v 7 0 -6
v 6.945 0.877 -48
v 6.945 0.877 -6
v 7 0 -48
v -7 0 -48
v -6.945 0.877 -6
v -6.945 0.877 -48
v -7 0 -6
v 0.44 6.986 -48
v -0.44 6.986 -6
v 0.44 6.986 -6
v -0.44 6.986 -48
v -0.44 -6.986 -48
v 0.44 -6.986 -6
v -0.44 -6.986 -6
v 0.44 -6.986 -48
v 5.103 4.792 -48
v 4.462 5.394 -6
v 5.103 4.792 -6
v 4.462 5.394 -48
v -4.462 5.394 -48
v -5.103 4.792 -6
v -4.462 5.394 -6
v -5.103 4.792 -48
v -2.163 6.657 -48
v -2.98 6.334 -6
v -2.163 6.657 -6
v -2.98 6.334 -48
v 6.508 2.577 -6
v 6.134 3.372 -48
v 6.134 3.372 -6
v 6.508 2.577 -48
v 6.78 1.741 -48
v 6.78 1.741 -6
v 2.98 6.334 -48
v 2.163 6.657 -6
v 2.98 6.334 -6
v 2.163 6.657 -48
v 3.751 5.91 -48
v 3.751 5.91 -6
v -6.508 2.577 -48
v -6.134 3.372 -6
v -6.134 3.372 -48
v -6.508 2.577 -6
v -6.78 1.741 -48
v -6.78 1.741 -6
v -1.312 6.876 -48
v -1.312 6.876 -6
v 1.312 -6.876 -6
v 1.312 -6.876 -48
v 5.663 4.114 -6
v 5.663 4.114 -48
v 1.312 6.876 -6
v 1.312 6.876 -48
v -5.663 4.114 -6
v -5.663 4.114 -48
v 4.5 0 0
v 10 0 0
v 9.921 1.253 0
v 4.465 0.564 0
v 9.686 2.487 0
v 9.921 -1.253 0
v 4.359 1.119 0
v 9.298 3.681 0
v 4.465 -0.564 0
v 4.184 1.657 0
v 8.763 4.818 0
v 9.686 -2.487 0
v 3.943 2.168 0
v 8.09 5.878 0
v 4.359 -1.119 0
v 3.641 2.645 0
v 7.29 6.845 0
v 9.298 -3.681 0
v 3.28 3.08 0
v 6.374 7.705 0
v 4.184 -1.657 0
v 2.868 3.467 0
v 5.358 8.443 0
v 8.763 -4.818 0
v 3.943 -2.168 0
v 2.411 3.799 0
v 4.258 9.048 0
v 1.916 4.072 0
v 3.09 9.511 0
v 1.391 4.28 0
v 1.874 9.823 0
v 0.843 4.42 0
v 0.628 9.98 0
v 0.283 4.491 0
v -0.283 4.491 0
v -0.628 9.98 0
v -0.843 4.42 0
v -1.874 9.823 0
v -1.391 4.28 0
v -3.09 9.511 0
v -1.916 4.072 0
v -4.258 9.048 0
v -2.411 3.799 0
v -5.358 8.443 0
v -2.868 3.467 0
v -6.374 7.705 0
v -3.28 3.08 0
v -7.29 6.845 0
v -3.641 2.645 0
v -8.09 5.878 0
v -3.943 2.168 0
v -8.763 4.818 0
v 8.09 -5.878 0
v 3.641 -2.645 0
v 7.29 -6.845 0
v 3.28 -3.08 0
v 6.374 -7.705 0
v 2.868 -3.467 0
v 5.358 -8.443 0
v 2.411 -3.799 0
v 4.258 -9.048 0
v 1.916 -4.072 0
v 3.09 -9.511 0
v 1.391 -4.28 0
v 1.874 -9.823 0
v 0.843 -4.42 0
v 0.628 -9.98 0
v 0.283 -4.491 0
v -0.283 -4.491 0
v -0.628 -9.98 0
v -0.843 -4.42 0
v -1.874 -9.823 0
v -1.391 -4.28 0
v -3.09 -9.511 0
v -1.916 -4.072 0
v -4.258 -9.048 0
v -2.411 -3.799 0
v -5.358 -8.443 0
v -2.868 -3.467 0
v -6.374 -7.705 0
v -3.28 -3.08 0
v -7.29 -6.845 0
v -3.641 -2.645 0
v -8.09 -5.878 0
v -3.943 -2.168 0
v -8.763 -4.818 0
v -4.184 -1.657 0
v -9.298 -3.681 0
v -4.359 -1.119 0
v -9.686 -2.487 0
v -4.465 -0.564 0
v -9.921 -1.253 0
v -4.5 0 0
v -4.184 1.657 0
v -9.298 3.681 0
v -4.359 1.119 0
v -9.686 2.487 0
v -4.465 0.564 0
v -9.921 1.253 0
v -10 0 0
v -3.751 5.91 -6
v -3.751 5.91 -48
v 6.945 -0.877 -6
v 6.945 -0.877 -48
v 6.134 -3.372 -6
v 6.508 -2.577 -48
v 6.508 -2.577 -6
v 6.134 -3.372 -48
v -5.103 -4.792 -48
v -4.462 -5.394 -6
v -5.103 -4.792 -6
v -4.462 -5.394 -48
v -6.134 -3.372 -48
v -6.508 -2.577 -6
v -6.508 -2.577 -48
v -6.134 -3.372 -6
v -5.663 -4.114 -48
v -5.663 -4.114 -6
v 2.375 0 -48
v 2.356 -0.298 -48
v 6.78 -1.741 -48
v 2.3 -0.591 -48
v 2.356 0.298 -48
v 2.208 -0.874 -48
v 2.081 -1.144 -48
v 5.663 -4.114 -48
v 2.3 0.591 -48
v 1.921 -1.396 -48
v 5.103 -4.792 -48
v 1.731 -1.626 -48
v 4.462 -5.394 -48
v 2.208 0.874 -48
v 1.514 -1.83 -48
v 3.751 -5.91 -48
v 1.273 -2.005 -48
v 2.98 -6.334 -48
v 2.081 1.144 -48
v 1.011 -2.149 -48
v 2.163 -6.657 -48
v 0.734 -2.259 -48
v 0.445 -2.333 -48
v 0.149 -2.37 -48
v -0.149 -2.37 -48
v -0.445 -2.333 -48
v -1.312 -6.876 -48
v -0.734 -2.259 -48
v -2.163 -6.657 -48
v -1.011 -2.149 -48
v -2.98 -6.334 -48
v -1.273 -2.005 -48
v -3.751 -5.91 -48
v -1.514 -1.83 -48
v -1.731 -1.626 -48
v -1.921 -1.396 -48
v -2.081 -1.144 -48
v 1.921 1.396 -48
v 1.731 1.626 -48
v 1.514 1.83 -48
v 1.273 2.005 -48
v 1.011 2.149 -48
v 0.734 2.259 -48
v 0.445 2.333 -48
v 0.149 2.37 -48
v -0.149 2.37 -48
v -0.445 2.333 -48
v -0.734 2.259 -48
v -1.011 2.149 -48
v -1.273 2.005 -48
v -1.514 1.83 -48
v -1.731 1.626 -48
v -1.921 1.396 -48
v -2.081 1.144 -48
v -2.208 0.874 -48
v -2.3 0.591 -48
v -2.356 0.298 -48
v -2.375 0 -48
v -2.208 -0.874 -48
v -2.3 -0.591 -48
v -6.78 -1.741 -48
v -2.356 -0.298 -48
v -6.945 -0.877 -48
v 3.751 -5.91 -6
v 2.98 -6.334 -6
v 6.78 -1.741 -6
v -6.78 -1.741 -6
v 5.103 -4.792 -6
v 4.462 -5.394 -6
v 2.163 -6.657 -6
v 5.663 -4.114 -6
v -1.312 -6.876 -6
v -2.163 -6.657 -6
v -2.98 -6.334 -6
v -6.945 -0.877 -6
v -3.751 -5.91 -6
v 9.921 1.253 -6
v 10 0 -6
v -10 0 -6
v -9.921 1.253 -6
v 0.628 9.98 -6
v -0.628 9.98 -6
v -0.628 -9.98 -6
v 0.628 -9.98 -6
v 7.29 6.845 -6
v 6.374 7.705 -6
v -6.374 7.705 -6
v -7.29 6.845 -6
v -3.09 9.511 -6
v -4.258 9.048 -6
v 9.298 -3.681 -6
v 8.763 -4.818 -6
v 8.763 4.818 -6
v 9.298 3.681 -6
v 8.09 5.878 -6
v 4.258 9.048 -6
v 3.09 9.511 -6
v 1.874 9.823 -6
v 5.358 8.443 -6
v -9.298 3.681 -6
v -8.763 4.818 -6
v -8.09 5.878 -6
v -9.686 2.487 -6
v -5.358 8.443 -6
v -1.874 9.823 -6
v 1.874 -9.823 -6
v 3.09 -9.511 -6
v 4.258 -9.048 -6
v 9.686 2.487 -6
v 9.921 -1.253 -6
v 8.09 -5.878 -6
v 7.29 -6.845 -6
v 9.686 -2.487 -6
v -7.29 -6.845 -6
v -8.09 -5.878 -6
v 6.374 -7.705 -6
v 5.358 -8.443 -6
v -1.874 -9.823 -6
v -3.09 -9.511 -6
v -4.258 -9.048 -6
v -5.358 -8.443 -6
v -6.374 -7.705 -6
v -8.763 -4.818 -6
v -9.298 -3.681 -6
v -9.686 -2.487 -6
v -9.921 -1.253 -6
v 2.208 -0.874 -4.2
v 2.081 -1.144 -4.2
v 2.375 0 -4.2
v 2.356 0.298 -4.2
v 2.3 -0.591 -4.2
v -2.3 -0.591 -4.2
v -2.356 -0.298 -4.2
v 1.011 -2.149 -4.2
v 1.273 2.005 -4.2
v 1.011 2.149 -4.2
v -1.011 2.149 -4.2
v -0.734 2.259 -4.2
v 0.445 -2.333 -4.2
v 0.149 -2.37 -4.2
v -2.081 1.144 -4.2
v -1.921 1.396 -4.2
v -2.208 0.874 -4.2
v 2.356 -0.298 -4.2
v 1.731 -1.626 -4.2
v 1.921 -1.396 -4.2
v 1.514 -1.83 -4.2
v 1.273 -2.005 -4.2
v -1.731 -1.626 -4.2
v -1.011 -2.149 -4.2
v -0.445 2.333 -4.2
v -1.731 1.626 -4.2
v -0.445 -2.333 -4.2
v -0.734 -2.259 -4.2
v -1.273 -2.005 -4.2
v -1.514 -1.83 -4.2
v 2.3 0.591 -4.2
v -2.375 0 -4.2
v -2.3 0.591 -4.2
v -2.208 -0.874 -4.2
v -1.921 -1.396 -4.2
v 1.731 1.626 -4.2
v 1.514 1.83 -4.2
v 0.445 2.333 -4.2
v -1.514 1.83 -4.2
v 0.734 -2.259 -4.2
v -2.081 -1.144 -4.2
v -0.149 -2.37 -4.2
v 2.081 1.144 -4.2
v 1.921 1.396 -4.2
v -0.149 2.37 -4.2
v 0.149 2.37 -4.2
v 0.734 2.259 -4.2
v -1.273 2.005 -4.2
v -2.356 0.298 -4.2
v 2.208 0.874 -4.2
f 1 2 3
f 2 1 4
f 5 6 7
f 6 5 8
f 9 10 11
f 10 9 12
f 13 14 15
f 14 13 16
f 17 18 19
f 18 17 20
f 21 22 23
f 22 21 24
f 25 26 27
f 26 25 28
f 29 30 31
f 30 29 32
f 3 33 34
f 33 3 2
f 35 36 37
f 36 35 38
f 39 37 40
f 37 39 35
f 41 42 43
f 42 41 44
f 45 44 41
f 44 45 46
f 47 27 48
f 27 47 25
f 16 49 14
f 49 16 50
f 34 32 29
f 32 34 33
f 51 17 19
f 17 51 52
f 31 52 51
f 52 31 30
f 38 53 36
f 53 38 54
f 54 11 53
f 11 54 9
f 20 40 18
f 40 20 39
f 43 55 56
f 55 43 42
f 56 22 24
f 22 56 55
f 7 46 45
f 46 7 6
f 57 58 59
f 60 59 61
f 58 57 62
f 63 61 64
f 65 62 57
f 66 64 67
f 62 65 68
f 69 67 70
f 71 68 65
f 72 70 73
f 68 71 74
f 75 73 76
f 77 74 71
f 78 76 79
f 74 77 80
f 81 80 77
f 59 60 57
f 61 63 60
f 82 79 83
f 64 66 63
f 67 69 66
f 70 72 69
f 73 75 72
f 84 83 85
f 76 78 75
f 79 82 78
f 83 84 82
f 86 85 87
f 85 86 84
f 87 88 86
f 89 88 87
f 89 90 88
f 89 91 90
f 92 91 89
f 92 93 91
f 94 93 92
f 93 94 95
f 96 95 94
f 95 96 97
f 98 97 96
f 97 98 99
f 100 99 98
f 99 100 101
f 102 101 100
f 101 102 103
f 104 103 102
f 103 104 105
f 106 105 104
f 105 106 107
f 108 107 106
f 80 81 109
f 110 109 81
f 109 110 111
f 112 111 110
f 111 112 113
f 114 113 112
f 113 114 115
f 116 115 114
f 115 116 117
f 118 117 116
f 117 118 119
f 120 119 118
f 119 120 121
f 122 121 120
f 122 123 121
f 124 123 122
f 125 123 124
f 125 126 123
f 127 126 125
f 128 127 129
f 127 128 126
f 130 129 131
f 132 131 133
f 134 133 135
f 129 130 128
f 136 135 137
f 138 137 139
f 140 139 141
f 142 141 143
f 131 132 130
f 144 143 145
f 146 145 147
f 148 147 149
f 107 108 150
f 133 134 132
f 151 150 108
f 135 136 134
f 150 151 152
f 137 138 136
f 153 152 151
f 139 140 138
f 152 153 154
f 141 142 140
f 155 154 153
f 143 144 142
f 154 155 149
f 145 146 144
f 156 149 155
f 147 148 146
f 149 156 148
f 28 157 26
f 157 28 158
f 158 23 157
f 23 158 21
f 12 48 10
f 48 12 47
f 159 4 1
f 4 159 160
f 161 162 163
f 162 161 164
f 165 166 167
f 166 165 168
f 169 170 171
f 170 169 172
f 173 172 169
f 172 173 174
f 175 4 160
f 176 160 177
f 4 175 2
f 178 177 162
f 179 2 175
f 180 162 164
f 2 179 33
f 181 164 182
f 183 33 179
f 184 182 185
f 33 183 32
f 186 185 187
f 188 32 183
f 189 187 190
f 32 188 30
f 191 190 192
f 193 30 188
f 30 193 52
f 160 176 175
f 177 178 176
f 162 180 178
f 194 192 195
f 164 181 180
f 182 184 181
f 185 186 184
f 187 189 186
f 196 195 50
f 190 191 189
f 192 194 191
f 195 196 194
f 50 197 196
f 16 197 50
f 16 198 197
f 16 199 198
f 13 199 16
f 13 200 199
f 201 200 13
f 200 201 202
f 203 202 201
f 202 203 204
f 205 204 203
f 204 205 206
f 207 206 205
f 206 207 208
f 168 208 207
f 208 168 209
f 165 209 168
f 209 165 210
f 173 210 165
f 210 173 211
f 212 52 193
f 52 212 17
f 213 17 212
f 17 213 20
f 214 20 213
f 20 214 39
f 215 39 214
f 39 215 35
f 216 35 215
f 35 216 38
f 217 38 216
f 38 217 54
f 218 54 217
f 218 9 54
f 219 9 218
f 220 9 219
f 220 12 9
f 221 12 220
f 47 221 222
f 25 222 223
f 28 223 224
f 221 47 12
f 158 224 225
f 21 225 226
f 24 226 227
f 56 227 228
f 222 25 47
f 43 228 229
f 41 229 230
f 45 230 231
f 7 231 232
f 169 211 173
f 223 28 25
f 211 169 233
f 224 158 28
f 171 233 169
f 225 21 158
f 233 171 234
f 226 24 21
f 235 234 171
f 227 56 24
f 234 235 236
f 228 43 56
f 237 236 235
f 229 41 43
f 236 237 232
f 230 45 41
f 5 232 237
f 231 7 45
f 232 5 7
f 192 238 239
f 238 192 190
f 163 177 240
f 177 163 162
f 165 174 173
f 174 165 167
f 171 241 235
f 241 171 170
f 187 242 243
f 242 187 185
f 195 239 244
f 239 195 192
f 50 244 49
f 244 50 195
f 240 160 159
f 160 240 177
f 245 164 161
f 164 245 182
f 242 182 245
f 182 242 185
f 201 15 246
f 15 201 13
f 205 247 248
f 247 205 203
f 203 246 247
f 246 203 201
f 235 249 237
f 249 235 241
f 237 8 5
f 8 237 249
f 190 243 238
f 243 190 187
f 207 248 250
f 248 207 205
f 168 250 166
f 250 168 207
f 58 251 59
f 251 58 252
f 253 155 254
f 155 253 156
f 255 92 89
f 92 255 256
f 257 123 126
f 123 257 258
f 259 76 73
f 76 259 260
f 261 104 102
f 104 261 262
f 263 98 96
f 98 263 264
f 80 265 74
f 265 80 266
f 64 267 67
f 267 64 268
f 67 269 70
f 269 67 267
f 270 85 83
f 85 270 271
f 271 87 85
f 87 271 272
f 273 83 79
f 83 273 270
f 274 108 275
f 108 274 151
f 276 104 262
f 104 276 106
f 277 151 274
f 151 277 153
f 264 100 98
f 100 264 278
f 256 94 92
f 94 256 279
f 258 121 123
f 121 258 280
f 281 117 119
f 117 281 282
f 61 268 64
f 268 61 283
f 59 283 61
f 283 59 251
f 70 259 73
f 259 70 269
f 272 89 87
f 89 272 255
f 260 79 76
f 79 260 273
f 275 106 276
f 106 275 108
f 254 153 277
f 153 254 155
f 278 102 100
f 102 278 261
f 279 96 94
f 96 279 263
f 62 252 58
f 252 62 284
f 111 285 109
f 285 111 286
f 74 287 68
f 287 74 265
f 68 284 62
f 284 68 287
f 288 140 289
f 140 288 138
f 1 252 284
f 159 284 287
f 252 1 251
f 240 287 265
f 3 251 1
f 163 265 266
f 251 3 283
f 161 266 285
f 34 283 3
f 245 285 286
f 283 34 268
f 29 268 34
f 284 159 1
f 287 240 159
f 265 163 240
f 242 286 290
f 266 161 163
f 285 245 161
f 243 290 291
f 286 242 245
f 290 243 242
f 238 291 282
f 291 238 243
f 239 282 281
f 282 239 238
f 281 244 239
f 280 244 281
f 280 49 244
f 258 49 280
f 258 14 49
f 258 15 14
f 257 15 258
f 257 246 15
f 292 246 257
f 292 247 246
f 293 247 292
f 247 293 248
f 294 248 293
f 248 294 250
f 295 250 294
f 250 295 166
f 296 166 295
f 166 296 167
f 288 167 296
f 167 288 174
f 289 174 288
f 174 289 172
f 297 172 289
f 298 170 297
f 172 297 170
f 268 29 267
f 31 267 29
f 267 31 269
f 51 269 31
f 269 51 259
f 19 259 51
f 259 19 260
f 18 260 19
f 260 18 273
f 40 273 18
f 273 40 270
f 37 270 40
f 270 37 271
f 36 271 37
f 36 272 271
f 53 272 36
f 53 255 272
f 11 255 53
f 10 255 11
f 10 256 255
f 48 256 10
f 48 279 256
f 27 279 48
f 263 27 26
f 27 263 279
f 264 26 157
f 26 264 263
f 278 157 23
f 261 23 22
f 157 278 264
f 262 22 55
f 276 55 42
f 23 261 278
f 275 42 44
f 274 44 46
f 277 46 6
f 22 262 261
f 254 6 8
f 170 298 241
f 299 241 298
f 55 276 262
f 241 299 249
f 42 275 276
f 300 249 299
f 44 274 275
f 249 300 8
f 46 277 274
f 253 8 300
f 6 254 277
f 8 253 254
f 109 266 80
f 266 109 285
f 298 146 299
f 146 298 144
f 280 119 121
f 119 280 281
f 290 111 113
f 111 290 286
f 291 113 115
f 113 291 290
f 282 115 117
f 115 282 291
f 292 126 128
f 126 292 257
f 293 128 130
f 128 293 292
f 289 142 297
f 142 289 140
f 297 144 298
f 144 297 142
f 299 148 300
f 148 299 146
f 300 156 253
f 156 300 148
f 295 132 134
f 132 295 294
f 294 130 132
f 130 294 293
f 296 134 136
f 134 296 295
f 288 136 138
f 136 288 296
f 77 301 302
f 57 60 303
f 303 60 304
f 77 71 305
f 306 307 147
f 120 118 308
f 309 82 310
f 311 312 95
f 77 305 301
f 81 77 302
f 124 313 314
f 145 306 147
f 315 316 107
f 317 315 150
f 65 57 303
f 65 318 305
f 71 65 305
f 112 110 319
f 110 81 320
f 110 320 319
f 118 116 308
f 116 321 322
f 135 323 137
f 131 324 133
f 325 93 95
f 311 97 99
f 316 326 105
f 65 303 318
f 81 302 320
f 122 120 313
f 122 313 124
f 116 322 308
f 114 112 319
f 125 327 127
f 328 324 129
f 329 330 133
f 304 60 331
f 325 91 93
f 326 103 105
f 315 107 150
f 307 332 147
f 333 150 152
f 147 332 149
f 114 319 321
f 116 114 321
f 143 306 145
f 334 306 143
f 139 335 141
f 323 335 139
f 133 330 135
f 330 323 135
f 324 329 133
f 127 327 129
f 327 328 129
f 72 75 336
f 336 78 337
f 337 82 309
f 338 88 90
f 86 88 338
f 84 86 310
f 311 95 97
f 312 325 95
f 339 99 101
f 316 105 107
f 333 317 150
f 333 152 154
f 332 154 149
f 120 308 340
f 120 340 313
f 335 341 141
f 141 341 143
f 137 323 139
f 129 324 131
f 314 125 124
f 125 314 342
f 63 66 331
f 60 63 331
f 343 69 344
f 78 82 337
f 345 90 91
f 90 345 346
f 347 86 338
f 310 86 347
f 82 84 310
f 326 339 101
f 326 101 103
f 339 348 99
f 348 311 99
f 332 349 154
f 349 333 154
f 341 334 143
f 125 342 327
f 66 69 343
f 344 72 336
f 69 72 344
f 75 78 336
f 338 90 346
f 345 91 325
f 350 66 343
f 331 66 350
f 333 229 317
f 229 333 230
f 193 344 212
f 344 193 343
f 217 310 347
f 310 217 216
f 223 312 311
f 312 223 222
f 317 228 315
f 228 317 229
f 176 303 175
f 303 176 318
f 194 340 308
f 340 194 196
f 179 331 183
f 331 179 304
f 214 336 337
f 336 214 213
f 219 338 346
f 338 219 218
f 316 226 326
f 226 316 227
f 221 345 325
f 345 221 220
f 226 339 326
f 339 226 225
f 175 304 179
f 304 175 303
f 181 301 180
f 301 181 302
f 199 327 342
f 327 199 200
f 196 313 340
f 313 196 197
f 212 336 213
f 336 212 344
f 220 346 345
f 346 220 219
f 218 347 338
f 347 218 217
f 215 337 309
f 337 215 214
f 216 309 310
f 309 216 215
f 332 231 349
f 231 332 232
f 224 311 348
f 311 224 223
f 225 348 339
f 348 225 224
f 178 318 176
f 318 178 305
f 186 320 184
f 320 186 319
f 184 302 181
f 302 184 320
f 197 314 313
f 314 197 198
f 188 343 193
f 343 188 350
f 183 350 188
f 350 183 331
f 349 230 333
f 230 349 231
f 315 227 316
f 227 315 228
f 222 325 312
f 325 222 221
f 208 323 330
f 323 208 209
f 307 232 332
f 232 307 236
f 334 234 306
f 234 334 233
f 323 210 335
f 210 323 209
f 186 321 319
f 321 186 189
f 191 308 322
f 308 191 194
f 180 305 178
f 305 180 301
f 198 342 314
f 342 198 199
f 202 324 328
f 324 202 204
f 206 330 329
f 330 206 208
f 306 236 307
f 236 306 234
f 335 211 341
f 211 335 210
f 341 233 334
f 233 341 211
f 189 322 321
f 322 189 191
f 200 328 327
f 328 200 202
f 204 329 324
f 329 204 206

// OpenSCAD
$fn = 50;


difference() {
	union() {
		translate(v = [0, 0, -48.0000000000]) {
			cylinder(h = 48, r = 7.0000000000);
		}
		translate(v = [0, 0, -6.0000000000]) {
			cylinder(h = 6, r = 10.0000000000);
		}
	}
	union() {
		translate(v = [0, 0, 0]) {
			rotate(a = [0, 0, 0]) {
				difference() {
					union() {
						#translate(v = [0, 0, -48.0000000000]) {
							cylinder(h = 48, r = 2.2500000000);
						}
						#translate(v = [0, 0, -4.2000000000]) {
							cylinder(h = 4.2000000000, r1 = 2.3750000000, r2 = 4.5000000000);
						}
						#translate(v = [0, 0, -48.0000000000]) {
							cylinder(h = 48, r = 2.3750000000);
						}
						#translate(v = [0, 0, -48.0000000000]) {
							cylinder(h = 48, r = 2.2500000000);
						}
					}
					union();
				}
			}
		}
	}
}
